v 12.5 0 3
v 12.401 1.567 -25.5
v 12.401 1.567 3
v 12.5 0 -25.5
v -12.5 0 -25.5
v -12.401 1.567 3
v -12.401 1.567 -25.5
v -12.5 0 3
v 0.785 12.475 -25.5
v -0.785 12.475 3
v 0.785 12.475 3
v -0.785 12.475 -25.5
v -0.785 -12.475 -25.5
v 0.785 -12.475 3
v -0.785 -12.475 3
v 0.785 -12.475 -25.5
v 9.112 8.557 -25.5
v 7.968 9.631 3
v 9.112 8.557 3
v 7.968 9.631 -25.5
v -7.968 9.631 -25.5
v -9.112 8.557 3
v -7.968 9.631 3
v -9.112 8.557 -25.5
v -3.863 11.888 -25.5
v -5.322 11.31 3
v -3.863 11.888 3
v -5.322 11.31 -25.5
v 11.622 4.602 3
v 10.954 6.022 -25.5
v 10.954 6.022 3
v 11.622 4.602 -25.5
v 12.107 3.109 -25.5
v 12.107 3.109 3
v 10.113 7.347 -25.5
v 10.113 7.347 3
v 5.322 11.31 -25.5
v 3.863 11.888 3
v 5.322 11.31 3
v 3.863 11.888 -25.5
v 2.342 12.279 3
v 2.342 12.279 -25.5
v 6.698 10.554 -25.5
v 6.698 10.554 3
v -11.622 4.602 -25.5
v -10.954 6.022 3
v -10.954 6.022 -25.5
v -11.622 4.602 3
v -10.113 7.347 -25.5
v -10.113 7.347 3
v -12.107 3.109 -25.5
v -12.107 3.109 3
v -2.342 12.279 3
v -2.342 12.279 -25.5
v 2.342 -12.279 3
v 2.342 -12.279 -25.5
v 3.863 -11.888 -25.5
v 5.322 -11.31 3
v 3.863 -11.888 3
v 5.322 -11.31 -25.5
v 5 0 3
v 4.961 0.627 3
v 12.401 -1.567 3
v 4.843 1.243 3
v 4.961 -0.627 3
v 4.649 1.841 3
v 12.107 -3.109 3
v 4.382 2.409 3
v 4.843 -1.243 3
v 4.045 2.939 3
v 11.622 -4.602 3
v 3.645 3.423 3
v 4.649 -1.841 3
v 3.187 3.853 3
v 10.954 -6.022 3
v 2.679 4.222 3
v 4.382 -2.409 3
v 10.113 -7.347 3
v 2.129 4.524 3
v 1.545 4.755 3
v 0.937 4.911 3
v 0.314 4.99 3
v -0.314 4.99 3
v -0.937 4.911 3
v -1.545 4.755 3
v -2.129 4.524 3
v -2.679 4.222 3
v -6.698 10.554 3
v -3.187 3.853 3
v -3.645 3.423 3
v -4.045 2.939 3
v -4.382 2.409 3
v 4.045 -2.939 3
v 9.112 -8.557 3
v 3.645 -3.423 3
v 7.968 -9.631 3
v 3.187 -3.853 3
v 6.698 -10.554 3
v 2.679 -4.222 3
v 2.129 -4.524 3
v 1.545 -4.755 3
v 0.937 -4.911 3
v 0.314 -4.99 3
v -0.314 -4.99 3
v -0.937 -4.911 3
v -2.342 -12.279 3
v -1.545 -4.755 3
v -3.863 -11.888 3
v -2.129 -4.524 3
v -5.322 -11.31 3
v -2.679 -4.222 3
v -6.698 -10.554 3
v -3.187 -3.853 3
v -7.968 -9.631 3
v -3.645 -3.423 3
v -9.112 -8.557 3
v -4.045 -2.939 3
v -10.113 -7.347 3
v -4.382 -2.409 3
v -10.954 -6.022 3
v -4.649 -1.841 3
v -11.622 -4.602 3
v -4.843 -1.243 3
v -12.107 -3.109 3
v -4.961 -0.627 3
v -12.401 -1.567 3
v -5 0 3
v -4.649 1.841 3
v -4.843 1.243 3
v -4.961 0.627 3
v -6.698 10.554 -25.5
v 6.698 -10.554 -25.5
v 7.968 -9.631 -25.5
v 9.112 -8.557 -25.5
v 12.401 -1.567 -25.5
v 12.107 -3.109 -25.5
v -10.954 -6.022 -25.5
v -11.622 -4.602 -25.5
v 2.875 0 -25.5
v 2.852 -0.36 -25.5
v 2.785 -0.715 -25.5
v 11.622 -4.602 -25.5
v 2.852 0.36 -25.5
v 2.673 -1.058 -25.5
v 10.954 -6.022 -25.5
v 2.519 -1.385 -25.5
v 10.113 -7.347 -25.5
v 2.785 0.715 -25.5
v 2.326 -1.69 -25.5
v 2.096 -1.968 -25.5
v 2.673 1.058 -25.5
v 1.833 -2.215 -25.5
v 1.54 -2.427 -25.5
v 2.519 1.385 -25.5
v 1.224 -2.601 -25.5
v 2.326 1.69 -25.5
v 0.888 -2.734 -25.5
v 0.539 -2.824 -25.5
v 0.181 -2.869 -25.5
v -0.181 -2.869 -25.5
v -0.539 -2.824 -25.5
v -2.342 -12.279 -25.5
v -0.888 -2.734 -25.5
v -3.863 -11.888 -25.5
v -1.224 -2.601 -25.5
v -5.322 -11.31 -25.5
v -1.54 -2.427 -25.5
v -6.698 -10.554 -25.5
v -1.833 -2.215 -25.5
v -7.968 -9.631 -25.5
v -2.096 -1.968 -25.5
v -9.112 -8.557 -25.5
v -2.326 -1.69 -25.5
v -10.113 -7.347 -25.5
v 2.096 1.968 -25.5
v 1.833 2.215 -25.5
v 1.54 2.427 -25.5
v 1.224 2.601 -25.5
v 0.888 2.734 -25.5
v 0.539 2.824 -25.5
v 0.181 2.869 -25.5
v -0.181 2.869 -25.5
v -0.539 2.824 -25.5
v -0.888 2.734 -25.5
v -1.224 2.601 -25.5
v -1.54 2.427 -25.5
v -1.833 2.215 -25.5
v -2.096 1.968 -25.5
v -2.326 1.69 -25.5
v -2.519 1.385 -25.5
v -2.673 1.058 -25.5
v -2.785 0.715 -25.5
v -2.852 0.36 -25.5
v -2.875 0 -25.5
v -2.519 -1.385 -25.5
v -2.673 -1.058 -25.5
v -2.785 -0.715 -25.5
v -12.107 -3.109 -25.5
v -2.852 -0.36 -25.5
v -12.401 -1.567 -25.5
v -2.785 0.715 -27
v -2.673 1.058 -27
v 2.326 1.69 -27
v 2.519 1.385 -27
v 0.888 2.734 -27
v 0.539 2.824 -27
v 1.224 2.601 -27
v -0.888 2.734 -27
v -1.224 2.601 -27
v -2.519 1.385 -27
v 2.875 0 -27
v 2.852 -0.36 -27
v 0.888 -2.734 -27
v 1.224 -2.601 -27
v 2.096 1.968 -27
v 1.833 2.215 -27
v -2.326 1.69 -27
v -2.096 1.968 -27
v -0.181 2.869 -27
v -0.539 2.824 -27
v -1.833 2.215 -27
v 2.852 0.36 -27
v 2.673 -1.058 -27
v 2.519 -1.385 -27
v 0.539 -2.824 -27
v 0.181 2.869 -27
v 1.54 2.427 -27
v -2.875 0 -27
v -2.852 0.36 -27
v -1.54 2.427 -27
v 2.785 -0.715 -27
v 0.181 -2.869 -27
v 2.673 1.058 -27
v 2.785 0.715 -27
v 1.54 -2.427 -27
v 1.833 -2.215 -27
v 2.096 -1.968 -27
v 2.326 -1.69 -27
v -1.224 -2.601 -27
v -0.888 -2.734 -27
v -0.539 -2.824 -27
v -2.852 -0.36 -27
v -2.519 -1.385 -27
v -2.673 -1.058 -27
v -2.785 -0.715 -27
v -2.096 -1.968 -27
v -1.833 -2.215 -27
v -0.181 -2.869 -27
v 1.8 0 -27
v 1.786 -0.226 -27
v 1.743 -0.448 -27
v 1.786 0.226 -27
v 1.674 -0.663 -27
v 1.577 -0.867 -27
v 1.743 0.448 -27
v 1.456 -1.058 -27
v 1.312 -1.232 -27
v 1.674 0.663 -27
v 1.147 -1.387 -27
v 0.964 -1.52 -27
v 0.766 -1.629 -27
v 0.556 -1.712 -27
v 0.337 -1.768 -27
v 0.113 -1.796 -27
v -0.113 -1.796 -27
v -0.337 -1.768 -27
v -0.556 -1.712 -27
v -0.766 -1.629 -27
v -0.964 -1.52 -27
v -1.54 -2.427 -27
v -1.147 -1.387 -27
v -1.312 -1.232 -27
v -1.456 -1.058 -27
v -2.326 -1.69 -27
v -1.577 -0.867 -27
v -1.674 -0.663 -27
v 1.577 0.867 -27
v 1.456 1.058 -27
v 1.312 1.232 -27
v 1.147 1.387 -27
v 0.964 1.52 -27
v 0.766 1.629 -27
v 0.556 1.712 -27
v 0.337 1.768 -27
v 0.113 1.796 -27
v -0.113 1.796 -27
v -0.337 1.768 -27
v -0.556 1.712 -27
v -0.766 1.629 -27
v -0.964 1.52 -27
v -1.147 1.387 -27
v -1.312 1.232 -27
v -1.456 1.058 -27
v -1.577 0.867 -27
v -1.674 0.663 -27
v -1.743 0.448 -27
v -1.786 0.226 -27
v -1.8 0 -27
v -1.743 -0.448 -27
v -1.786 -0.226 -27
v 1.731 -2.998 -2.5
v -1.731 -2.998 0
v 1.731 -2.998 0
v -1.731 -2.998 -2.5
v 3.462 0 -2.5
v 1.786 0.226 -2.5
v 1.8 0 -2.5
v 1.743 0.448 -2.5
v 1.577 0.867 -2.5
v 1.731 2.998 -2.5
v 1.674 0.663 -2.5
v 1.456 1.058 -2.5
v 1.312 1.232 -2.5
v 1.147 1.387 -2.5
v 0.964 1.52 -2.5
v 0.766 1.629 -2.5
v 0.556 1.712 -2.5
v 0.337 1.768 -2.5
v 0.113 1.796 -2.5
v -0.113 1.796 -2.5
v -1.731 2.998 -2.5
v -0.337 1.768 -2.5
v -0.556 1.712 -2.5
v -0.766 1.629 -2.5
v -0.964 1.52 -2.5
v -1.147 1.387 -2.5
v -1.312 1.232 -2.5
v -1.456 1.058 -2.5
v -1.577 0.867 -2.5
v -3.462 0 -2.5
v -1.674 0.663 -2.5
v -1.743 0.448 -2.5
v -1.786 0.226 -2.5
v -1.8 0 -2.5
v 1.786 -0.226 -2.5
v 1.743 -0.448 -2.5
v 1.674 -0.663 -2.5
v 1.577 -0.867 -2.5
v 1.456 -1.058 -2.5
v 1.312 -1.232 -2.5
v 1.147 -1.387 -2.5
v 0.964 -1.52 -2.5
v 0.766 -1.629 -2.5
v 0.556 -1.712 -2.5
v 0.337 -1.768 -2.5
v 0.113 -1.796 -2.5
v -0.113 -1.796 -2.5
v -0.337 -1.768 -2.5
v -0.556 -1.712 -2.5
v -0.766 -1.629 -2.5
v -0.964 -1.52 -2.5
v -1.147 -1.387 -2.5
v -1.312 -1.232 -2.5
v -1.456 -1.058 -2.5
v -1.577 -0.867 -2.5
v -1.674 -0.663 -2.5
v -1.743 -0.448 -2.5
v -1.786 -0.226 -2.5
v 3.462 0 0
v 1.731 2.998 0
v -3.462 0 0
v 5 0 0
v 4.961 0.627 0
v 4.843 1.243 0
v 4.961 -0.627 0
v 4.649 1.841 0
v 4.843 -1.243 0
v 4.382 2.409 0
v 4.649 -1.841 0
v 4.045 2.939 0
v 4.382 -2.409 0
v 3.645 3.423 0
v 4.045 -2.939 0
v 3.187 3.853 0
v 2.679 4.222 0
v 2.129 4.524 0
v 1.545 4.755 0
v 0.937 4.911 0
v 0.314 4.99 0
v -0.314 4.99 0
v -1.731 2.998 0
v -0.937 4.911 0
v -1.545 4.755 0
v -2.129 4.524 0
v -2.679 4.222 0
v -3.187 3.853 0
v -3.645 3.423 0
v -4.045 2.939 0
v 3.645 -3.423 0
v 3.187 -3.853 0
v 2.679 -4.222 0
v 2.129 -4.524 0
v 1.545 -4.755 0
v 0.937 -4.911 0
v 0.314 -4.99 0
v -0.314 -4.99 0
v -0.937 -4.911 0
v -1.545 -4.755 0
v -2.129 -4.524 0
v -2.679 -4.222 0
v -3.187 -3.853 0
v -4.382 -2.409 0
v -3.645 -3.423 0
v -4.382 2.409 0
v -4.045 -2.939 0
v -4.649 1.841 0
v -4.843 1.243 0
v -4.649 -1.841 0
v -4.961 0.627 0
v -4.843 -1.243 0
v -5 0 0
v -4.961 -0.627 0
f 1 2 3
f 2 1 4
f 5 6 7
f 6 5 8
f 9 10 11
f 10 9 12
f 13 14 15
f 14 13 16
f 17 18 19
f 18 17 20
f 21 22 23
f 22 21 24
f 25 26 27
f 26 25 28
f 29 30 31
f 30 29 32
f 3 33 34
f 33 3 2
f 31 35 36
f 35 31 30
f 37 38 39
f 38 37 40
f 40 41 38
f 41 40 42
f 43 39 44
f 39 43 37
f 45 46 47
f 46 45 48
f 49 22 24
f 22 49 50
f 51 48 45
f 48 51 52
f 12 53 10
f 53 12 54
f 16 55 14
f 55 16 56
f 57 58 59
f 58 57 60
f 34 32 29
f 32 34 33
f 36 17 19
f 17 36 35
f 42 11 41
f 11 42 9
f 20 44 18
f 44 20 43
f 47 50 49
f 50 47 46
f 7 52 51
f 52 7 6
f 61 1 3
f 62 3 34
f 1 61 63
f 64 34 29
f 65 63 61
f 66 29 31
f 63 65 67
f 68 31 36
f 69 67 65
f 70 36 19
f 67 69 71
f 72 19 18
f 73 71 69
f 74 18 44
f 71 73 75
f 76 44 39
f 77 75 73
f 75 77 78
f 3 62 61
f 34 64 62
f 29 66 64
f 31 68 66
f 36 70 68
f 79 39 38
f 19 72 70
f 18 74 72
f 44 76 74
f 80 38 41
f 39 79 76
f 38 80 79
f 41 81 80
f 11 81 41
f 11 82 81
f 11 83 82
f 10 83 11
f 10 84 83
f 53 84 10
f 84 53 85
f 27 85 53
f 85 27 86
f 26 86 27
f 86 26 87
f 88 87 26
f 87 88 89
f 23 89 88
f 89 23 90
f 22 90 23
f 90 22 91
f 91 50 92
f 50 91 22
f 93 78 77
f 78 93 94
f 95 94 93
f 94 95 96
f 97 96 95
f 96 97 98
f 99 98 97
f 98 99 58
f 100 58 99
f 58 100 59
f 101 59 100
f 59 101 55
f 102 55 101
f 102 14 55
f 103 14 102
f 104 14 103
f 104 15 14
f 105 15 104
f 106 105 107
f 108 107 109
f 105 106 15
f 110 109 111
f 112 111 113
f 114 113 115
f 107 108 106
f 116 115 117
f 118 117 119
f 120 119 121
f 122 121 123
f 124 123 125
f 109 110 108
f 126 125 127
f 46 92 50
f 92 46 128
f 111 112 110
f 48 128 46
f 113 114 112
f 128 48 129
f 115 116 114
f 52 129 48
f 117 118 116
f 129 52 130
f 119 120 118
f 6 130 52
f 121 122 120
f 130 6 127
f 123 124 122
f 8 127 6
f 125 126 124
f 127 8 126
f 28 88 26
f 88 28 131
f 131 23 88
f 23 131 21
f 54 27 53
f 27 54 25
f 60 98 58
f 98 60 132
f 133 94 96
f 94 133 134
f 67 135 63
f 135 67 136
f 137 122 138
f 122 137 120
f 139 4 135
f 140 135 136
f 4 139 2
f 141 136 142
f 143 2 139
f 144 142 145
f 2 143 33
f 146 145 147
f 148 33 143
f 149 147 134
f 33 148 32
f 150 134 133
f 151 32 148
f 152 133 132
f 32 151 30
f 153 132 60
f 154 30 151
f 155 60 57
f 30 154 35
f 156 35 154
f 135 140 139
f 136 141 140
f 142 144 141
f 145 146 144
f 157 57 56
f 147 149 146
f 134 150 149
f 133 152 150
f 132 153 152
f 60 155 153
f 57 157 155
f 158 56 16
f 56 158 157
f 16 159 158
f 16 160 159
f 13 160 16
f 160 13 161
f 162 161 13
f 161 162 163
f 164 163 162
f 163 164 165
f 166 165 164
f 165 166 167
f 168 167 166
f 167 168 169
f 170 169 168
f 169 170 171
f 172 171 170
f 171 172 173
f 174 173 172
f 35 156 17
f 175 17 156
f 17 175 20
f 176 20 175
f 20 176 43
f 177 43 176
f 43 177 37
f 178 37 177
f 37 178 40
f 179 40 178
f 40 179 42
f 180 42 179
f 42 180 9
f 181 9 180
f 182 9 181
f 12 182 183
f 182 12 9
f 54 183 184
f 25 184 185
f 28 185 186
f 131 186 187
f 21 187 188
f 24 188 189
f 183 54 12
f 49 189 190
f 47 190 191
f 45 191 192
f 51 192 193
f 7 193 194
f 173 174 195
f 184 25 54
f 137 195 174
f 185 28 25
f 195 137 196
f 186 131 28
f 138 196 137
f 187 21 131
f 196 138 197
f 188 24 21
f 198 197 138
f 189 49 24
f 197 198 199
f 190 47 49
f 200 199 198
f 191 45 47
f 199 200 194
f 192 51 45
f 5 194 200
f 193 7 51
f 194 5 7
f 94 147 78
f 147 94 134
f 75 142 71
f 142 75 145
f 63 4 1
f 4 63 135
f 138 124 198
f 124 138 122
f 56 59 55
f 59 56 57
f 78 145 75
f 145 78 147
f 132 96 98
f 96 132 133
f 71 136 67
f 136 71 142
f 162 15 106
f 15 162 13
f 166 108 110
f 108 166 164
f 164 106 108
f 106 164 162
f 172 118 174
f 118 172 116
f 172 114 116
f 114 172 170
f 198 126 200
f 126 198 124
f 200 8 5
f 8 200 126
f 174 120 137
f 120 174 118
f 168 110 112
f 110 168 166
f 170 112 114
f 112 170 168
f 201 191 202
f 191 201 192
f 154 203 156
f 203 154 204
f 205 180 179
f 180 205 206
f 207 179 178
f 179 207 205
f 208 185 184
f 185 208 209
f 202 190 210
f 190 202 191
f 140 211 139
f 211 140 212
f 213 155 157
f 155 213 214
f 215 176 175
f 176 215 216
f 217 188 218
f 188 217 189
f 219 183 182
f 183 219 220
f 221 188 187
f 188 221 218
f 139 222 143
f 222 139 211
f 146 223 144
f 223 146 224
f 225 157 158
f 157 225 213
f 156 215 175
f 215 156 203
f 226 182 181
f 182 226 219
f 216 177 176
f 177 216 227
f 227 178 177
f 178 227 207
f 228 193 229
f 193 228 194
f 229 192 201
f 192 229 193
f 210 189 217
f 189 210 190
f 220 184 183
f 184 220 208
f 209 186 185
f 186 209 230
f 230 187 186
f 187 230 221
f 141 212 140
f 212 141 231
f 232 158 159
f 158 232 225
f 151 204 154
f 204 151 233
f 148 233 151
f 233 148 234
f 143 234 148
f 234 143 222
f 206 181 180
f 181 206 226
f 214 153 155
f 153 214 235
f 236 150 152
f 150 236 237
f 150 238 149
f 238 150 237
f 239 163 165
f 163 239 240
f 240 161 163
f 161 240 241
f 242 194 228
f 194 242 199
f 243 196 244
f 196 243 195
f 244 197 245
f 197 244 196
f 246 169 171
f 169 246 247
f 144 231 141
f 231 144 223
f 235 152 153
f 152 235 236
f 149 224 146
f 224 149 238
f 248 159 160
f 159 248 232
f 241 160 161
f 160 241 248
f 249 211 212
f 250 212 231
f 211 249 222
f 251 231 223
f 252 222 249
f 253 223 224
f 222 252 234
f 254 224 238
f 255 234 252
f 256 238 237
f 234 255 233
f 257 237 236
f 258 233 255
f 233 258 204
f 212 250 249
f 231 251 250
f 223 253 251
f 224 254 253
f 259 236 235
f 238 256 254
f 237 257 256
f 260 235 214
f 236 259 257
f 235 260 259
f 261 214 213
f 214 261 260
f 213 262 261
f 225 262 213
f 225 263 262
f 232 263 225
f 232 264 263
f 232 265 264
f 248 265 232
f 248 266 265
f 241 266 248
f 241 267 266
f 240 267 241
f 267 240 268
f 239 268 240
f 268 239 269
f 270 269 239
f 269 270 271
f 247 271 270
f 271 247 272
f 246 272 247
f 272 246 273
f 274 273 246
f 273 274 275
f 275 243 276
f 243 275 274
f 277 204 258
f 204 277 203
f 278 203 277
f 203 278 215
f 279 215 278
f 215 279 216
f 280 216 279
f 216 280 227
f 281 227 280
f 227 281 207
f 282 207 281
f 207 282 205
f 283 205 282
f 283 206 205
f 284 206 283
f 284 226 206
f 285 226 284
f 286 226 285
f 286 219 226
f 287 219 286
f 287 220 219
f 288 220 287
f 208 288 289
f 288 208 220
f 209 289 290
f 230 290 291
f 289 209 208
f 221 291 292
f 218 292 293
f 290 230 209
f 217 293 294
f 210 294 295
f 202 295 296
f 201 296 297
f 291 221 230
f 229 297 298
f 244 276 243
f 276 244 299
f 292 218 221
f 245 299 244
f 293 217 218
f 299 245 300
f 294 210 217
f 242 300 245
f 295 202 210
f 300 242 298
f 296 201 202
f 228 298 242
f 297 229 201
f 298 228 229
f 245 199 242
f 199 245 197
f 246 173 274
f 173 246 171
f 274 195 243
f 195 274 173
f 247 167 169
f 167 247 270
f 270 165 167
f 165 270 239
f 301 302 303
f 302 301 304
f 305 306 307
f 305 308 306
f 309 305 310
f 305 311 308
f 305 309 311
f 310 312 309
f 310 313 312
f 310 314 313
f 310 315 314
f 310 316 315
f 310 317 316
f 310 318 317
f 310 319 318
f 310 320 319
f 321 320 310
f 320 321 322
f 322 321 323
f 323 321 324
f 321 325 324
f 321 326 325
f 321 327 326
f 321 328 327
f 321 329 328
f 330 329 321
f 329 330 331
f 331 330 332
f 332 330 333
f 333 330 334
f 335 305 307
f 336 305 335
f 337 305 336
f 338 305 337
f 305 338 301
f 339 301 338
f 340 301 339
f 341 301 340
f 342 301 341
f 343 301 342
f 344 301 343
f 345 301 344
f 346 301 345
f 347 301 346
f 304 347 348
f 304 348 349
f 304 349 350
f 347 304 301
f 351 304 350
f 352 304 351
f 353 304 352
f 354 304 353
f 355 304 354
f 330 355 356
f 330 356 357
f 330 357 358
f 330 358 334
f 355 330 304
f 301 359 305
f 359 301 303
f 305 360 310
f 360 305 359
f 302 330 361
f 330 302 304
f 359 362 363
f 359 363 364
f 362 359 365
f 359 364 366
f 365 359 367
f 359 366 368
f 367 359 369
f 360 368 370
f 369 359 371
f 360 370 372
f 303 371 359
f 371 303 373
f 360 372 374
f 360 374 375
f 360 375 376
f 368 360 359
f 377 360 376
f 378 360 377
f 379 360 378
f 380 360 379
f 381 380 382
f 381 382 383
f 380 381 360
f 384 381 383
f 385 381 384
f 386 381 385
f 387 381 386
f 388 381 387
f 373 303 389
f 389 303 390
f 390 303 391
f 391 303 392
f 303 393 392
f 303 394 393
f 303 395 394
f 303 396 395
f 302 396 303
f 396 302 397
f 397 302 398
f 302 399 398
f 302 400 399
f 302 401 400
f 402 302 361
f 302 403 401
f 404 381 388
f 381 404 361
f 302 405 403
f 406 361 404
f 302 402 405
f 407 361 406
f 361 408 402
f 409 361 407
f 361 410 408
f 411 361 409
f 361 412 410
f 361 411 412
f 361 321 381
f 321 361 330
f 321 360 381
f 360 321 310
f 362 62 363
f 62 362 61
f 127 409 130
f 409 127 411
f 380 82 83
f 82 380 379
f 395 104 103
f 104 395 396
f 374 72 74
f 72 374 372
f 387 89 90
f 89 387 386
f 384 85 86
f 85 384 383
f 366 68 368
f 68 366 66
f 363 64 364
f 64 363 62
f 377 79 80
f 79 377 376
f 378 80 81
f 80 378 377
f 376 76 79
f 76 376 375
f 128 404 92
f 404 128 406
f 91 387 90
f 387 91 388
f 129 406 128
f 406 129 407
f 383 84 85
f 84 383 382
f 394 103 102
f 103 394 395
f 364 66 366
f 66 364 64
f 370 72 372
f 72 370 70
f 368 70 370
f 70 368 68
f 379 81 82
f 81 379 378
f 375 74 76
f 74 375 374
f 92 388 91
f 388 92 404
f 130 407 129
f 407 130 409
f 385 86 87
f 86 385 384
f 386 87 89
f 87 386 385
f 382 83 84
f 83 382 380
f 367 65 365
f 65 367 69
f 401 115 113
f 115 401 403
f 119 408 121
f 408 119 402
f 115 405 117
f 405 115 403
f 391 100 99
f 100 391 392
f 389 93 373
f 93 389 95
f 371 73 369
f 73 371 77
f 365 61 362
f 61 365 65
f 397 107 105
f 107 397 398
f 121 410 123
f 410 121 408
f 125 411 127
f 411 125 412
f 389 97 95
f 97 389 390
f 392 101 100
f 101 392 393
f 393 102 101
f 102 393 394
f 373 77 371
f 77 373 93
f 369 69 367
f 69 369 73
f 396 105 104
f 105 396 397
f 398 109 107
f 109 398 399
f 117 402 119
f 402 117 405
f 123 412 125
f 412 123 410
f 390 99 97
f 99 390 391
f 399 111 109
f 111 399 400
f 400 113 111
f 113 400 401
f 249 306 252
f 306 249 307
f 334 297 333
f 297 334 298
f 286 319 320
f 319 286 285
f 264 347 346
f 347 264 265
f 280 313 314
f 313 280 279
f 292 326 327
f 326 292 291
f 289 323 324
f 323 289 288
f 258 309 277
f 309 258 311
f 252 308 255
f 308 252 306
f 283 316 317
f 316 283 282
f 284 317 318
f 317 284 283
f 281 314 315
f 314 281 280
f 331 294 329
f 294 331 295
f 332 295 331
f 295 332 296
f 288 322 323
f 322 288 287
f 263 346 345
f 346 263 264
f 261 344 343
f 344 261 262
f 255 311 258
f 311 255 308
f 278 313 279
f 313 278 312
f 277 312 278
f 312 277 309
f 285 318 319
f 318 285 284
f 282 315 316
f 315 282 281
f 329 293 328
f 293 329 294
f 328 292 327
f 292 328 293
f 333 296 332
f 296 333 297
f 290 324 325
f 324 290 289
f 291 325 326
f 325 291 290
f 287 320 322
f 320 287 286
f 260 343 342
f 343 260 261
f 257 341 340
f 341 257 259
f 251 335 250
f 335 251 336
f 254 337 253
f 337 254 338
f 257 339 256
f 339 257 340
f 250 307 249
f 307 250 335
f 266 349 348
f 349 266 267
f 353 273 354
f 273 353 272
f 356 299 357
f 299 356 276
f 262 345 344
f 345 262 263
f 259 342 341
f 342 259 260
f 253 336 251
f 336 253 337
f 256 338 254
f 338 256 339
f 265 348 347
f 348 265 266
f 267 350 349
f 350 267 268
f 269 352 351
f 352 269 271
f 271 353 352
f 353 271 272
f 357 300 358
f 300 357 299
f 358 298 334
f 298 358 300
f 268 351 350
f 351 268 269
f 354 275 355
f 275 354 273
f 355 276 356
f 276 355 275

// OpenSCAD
$fn = 50;

difference() {
	union() {
		translate(v = [0, 0, -25.5]) {
			cylinder(h = 28.5, r = 12.5);
		}
		#translate(v = [0, 0, -27.0]) {
			cylinder(h = 27, r = 2.875);
		}
	}
	union() {
		translate(v = [0, 0, 0]) {
			rotate(a = [0, 0, 0]) {
				difference() {
					union() {
						translate(v = [0, 0, -2.5]) {
							linear_extrude(height = 2.5) {
								polygon(points = [[3.4619999999999997, 0.0], [1.7310000000000003, 2.9981799479017264], [-1.7309999999999992, 2.9981799479017264], [-3.4619999999999997, 4.2397272186481365e-16], [-1.7310000000000014, -2.998179947901726], [1.7309999999999977, -2.9981799479017277]]);
							}
						}
					}
					union();
				}
			}
		}
		#cylinder(h = 3, r = 5.0);
		#translate(v = [0, 0, -100.0]) {
			cylinder(h = 200, r = 1.8);
		}
	}
}
